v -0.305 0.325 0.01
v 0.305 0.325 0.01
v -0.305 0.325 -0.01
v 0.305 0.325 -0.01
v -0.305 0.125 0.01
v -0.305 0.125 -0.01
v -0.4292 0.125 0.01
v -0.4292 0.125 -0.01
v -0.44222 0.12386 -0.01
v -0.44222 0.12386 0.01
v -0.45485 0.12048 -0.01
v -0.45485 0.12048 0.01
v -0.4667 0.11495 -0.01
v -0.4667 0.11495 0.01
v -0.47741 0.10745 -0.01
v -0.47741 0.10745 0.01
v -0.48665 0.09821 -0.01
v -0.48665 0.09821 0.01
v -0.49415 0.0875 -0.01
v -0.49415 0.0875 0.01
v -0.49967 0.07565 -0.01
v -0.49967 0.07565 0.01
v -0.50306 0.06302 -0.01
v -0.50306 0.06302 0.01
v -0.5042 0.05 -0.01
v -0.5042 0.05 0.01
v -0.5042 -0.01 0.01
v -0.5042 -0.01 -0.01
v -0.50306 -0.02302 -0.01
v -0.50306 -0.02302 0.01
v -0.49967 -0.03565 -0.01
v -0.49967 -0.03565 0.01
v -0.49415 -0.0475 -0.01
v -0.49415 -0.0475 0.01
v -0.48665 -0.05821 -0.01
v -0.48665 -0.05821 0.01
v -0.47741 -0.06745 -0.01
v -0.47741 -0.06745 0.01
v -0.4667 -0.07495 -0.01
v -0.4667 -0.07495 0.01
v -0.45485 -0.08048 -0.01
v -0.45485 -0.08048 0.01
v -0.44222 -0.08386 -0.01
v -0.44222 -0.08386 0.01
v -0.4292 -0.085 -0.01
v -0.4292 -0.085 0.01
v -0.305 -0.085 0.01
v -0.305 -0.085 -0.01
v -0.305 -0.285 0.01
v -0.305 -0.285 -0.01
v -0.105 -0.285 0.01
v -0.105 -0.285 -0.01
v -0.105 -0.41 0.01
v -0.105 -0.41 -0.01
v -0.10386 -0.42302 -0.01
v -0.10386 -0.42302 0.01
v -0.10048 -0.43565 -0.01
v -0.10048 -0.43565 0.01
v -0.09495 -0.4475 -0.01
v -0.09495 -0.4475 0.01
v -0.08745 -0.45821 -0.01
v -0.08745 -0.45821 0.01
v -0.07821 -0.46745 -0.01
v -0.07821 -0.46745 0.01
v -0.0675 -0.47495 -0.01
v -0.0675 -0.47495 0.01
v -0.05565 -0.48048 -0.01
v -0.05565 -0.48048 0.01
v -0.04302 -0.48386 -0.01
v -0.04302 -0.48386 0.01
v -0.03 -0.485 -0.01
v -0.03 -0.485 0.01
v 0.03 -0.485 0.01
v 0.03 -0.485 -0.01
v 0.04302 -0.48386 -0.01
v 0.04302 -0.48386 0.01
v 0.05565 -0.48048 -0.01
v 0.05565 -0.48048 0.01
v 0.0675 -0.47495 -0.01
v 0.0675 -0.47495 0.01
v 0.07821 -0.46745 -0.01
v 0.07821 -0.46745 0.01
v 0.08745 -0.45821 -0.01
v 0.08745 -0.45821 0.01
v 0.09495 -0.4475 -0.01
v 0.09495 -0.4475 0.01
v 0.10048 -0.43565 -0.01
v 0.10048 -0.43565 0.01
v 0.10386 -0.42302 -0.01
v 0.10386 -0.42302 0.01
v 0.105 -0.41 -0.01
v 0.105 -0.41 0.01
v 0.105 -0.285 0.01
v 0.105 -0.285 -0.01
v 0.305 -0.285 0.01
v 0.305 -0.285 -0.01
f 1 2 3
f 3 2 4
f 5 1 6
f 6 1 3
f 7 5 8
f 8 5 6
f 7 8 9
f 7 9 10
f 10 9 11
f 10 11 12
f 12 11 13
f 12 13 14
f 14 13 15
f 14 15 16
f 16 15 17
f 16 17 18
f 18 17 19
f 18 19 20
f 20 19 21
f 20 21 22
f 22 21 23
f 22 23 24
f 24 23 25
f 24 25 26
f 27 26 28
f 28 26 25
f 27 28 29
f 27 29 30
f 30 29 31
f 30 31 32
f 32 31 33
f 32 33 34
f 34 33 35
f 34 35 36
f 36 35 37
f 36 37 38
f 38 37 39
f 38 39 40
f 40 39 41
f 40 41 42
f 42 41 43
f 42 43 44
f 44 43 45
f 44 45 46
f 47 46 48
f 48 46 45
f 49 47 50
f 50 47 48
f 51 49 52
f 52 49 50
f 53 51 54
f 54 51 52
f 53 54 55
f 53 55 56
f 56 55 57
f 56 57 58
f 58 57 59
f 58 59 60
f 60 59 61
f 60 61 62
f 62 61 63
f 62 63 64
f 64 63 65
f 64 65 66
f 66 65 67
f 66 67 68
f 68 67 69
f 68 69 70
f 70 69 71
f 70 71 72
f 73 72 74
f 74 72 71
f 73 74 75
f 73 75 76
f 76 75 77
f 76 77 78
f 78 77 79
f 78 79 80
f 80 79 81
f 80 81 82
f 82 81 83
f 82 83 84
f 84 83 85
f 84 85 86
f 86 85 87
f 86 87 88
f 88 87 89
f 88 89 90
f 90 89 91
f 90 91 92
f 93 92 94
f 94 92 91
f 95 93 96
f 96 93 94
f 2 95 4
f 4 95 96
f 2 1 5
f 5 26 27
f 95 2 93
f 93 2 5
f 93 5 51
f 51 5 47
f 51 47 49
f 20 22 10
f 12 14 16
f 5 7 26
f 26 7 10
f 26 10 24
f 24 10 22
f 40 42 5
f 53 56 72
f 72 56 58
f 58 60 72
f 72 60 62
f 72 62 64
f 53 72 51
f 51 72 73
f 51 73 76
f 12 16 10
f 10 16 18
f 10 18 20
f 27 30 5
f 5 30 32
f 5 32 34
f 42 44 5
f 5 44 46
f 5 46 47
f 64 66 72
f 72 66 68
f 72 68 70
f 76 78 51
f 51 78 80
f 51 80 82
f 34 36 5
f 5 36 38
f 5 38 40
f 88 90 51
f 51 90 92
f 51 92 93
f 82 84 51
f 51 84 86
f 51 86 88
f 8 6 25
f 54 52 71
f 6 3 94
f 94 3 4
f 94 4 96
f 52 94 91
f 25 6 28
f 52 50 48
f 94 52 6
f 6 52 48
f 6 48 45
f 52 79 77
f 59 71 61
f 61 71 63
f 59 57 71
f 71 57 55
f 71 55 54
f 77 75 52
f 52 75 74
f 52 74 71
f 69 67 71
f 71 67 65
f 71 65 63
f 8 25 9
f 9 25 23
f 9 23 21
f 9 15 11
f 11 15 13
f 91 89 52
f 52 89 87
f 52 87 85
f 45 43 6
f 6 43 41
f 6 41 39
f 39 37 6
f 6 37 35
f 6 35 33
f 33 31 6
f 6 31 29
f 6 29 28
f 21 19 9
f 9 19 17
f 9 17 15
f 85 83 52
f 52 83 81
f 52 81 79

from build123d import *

# Parameters (mm, degrees)
BOSS_EXTRUDE1_DEPTH = 0.01


with BuildPart() as part:
    # Sketch1 → Boss-Extrude1 (new, symmetric)
    with BuildSketch(Plane.XY):
        with BuildLine():
            Line((-0.305, 0.325), (-0.305, 0.125))
            Line((-0.305, 0.125), (-0.429197649, 0.125))
            ThreePointArc((-0.429197649, 0.125), (-0.482230658, 0.103033009), (-0.504197649, 0.05))
            Line((-0.504197649, 0.05), (-0.504197649, -0.01))
            ThreePointArc((-0.504197649, -0.01), (-0.482230658, -0.063033009), (-0.429197649, -0.085))
            Line((-0.429197649, -0.085), (-0.305, -0.085))
            Line((-0.305, -0.085), (-0.305, -0.285))
            Line((-0.305, -0.285), (-0.105, -0.285))
            Line((-0.105, -0.285), (-0.105, -0.41))
            ThreePointArc((-0.105, -0.41), (-0.083033009, -0.463033009), (-0.03, -0.485))
            Line((-0.03, -0.485), (0.03, -0.485))
            ThreePointArc((0.03, -0.485), (0.083033009, -0.463033009), (0.105, -0.41))
            Line((0.105, -0.41), (0.105, -0.285))
            Line((0.105, -0.285), (0.305, -0.285))
            Line((0.305, -0.285), (0.305, 0.325))
            Line((0.305, 0.325), (-0.305, 0.325))
        make_face()
    extrude(amount=BOSS_EXTRUDE1_DEPTH, both=True)


solid = part.part
